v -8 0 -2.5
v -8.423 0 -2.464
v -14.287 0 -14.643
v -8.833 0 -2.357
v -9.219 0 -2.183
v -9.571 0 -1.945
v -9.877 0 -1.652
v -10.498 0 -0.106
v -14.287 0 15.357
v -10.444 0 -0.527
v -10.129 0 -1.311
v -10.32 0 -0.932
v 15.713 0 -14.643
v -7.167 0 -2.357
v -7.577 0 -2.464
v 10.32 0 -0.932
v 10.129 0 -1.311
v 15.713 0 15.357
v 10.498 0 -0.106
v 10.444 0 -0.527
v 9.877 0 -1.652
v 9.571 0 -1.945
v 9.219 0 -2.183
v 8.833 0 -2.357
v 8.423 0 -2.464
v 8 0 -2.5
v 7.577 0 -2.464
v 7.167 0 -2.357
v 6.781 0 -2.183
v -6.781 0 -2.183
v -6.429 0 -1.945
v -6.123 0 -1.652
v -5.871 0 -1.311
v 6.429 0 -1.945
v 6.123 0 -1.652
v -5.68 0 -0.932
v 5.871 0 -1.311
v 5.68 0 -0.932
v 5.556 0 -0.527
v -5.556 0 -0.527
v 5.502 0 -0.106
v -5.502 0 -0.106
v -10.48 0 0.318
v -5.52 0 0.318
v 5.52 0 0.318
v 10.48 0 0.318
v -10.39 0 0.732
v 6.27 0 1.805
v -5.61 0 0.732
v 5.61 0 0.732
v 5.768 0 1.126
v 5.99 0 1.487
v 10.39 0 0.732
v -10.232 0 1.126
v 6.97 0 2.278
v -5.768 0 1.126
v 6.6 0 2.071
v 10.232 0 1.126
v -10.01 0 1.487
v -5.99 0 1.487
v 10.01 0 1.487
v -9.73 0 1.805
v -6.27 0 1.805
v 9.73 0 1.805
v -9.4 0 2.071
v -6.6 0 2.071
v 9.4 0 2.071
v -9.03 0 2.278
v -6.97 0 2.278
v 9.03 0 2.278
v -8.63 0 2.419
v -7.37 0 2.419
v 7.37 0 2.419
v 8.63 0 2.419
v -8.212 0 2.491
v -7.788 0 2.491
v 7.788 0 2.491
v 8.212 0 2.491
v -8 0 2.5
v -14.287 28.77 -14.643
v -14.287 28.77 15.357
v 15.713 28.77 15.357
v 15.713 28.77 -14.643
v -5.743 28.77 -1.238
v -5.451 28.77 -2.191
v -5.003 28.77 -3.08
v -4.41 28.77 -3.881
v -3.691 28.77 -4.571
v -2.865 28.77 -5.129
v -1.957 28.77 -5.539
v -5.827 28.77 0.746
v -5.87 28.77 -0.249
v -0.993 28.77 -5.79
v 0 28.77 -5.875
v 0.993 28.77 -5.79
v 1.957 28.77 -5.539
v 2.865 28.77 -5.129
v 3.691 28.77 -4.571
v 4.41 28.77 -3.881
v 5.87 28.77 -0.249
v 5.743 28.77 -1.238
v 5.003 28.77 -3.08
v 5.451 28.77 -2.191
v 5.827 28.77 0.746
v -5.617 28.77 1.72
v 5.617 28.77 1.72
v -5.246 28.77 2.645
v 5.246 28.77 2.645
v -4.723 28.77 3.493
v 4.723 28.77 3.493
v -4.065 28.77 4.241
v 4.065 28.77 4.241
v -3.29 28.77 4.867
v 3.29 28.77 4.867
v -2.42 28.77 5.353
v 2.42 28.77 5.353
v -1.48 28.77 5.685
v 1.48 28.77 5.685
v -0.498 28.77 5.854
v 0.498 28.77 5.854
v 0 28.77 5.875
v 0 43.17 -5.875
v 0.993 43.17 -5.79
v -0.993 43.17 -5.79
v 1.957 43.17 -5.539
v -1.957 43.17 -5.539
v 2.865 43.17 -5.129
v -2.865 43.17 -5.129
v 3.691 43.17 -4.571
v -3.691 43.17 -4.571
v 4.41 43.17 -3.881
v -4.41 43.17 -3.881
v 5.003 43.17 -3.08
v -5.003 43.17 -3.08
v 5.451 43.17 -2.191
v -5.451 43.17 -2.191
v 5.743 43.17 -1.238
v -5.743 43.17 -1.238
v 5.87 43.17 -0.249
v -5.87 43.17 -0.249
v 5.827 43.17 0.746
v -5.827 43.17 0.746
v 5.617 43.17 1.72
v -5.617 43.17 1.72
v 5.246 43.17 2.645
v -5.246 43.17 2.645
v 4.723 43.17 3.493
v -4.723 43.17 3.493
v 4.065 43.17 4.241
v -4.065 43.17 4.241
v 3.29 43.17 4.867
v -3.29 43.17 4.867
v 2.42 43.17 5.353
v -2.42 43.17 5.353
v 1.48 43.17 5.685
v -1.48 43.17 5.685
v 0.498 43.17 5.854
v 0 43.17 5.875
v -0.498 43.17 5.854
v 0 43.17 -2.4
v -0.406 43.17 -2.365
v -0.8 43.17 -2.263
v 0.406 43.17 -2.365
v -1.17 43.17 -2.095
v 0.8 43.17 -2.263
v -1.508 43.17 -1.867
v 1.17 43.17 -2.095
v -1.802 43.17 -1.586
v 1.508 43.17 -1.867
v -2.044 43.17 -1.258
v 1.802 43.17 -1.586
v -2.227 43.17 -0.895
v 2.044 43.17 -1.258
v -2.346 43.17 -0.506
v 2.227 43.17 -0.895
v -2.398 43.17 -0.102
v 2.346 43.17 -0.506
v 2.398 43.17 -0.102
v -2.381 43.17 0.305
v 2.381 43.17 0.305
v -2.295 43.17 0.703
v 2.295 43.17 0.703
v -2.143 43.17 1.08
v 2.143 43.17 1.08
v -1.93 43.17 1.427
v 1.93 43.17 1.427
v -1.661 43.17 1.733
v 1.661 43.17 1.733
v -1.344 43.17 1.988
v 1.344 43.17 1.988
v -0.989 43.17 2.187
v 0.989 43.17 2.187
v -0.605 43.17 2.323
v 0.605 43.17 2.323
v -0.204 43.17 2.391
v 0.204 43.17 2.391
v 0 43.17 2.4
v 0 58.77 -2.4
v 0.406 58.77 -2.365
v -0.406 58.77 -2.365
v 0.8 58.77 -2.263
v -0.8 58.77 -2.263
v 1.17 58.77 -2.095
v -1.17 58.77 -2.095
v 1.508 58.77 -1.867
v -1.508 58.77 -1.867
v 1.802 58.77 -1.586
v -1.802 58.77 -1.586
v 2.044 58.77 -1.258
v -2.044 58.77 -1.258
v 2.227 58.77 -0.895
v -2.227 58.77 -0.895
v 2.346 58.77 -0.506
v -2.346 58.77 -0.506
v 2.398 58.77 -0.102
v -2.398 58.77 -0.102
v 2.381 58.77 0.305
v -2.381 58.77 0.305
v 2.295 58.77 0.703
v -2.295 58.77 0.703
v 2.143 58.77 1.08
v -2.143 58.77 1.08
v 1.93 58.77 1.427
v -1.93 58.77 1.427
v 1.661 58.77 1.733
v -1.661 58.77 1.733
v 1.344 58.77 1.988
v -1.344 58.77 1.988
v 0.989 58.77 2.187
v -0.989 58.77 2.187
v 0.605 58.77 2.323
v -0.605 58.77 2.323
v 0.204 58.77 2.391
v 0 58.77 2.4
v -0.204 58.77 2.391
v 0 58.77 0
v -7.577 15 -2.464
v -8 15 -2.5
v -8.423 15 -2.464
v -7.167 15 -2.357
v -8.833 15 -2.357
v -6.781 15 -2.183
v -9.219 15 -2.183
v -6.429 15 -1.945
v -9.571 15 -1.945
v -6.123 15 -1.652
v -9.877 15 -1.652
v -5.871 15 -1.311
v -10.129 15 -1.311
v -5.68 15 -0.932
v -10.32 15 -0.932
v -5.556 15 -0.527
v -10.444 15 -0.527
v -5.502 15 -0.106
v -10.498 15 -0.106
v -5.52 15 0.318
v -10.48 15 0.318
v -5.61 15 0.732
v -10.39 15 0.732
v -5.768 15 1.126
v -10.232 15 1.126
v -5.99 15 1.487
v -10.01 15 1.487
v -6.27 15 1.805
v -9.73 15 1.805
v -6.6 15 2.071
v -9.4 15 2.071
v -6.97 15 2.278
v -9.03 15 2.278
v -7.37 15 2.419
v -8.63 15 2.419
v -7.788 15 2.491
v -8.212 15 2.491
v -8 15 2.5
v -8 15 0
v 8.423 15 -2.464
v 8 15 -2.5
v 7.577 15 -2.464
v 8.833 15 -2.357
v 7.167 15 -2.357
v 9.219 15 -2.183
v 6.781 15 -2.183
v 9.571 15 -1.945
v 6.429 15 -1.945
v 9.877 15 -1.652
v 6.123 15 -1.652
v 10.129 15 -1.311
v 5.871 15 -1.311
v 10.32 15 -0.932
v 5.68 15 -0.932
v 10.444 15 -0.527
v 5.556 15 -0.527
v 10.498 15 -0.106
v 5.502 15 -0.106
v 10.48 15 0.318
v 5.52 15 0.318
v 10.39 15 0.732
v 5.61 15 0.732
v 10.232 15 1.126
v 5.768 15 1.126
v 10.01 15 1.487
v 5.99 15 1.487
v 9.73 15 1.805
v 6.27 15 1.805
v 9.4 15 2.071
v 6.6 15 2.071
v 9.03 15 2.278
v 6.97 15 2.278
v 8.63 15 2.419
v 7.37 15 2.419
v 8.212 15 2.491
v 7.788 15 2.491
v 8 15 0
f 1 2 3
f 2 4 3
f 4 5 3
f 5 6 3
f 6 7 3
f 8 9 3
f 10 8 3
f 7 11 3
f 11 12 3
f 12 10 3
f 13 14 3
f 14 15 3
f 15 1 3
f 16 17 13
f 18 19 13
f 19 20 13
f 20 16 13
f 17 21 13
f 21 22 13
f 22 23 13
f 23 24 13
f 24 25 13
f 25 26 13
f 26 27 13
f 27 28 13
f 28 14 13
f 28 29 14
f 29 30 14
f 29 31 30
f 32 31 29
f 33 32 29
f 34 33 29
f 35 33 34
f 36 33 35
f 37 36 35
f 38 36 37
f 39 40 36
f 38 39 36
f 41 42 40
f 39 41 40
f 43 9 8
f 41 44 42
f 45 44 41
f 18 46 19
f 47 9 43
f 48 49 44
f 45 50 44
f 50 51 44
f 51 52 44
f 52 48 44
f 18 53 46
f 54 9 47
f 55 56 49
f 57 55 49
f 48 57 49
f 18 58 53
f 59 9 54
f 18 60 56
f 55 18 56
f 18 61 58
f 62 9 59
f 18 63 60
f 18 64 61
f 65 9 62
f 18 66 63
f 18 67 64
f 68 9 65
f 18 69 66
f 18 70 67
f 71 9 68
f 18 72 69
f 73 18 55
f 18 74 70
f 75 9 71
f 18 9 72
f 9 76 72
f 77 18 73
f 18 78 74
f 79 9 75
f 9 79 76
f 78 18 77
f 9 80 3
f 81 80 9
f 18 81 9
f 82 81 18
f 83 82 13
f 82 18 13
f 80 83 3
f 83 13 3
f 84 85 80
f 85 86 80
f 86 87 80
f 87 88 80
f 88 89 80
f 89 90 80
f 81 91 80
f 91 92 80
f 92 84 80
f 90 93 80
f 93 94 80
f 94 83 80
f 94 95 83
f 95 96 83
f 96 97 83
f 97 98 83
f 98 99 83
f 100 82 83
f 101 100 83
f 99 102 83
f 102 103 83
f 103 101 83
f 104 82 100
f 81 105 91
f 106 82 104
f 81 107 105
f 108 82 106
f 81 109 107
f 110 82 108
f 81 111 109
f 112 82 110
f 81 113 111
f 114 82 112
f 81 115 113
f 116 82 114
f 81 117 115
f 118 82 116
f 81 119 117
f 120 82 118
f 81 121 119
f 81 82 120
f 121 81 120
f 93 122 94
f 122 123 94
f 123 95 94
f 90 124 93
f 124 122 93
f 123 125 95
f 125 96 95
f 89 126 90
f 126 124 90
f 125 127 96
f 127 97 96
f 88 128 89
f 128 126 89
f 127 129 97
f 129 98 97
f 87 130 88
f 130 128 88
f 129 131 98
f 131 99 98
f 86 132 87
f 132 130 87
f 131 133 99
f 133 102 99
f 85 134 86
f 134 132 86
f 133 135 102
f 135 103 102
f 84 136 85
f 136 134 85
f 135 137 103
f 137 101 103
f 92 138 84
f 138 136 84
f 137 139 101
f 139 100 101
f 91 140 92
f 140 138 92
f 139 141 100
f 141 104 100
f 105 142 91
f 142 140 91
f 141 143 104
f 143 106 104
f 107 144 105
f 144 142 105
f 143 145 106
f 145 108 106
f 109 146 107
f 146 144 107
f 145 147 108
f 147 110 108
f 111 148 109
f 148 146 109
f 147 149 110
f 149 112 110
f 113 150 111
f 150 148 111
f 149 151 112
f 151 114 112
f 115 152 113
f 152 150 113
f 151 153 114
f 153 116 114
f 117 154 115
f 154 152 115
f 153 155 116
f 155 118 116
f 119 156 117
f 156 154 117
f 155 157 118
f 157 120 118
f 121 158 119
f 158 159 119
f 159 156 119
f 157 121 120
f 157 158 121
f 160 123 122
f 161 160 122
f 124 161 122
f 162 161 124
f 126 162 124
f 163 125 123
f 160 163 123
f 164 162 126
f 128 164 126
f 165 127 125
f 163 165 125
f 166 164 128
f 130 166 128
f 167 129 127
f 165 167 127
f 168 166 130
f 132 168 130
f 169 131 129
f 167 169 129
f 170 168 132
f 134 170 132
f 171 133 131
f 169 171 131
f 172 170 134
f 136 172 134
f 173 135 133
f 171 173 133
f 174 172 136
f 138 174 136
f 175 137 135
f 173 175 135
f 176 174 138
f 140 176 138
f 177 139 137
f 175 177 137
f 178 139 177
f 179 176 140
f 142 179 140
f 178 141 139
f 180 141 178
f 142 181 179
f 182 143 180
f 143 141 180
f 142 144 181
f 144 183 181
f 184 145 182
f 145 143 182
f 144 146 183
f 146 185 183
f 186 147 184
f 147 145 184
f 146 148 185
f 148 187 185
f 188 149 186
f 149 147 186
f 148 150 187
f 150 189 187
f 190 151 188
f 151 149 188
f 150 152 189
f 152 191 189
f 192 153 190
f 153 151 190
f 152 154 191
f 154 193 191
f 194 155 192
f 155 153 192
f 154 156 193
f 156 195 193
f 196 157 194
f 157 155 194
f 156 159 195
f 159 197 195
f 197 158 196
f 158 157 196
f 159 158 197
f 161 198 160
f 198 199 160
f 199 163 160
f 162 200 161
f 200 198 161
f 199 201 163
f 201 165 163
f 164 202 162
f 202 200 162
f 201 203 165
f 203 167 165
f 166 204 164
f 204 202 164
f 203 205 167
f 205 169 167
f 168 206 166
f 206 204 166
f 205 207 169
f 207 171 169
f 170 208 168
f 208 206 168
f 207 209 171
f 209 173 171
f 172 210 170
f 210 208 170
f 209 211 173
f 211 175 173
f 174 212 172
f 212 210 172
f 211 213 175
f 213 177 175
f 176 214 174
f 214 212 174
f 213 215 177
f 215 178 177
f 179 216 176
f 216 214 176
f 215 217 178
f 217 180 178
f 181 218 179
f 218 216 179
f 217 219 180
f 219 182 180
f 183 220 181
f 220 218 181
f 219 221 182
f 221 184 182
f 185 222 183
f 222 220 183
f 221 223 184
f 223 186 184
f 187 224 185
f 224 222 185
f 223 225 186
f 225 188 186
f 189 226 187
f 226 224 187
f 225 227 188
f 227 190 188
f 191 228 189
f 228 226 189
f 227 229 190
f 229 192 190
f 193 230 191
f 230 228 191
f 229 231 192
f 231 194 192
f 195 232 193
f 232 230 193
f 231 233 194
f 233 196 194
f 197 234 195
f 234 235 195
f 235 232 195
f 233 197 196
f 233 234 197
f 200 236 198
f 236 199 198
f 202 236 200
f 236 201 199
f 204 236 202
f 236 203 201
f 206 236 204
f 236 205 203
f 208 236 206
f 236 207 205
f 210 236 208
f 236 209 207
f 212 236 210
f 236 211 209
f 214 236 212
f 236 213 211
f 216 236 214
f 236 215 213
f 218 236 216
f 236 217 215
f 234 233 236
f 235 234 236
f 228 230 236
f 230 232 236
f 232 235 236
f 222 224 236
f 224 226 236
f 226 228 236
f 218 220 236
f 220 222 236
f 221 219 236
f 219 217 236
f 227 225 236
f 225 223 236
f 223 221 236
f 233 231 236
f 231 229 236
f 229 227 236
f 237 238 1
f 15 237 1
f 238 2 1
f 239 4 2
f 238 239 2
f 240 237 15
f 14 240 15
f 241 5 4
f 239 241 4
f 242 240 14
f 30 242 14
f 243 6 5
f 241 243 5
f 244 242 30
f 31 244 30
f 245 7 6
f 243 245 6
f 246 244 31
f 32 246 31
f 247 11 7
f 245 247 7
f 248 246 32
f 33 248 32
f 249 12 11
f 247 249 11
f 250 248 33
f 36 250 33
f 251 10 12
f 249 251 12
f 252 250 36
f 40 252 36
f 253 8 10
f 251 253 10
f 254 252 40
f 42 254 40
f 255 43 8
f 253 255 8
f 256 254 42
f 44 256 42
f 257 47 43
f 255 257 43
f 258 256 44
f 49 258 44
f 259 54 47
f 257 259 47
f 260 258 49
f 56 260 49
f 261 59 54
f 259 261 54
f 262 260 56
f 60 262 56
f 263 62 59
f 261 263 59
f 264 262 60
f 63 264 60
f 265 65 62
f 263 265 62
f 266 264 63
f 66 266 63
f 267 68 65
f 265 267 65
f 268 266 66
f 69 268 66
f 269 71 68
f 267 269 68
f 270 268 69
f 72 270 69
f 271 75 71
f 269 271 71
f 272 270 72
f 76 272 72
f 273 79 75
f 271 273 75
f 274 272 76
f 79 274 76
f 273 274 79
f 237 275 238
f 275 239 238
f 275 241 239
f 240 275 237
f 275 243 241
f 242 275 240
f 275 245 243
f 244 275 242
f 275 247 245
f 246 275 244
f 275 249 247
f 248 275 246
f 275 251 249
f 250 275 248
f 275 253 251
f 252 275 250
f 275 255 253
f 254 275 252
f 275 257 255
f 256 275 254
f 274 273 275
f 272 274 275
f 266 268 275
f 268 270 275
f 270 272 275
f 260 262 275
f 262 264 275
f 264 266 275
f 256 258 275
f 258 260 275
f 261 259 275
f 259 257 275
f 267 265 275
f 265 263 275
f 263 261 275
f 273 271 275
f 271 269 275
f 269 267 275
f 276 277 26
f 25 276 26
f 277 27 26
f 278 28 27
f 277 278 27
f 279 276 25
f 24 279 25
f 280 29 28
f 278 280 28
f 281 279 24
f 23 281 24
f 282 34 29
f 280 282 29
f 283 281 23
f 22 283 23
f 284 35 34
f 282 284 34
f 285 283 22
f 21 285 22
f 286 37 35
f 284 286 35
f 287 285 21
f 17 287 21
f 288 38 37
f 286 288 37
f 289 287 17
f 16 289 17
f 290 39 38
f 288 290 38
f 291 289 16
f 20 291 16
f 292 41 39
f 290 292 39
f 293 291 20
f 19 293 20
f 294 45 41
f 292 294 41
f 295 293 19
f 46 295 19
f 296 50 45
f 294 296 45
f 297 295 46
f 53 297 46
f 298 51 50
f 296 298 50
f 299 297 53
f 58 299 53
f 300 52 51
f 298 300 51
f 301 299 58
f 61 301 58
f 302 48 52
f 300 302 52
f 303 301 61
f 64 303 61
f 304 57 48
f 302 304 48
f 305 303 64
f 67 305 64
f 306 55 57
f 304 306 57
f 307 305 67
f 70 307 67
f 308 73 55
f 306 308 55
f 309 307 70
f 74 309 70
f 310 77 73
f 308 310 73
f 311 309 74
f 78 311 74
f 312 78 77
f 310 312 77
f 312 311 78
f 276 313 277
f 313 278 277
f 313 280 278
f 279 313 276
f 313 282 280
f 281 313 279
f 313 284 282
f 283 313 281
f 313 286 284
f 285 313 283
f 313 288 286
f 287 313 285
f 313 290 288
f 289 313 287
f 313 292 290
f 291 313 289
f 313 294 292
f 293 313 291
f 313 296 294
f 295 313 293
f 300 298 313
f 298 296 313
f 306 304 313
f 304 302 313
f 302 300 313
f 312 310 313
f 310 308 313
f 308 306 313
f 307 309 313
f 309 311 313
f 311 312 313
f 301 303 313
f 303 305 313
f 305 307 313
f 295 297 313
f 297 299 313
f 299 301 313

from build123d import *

# Parameters (mm, degrees)
SKETCH_1_W          = 30
SKETCH_1_H          = 30
EXTRUDE_283_DEPTH   = 28.77
SKETCH_2_R          = 5.875
EXTRUDE_2_DEPTH     = 14.4
SKETCH_4_R          = 2.4
EXTRUDE_3_DEPTH     = 15.6
SKETCH_5_R          = 2.5
CUT_EXTRUDE_2_DEPTH = 15


with BuildPart() as part:
    # Эскиз1 → Extrude 283 (new body)
    with BuildSketch(Plane(origin=(0, 0, 0), x_dir=(1, 0, 0), z_dir=(0, 1, 0))):
        with Locations((0.713469456, -0.356734728)):
            Rectangle(SKETCH_1_W, SKETCH_1_H)
    extrude(amount=EXTRUDE_283_DEPTH)

    # Эскиз2 → Бобышка-Вытянуть2 (add)
    with BuildSketch(Plane(origin=(0, 28.77, 0), x_dir=(1, 0, 0), z_dir=(0, 1, 0))):
        with Locations(Location((0, 0, 0), (0, 0, 270))):
            Circle(SKETCH_2_R)
    extrude(amount=EXTRUDE_2_DEPTH)

    # Эскиз4 → Бобышка-Вытянуть3 (add)
    with BuildSketch(Plane(origin=(0, 43.17, 0), x_dir=(1, 0, 0), z_dir=(0, 1, 0))):
        with Locations(Location((0, 0, 0), (0, 0, 270))):
            Circle(SKETCH_4_R)
    extrude(amount=EXTRUDE_3_DEPTH)

    # Эскиз5 → Вырез-Вытянуть2 (cut)
    with BuildSketch(Plane.XZ):
        with Locations(Location((8, 0, 0), (0, 0, 270))):
            Circle(SKETCH_5_R)
        with Locations(Location((-8, 0, 0), (0, 0, 90))):
            Circle(SKETCH_5_R)
    extrude(amount=-CUT_EXTRUDE_2_DEPTH, mode=Mode.SUBTRACT)


solid = part.part
